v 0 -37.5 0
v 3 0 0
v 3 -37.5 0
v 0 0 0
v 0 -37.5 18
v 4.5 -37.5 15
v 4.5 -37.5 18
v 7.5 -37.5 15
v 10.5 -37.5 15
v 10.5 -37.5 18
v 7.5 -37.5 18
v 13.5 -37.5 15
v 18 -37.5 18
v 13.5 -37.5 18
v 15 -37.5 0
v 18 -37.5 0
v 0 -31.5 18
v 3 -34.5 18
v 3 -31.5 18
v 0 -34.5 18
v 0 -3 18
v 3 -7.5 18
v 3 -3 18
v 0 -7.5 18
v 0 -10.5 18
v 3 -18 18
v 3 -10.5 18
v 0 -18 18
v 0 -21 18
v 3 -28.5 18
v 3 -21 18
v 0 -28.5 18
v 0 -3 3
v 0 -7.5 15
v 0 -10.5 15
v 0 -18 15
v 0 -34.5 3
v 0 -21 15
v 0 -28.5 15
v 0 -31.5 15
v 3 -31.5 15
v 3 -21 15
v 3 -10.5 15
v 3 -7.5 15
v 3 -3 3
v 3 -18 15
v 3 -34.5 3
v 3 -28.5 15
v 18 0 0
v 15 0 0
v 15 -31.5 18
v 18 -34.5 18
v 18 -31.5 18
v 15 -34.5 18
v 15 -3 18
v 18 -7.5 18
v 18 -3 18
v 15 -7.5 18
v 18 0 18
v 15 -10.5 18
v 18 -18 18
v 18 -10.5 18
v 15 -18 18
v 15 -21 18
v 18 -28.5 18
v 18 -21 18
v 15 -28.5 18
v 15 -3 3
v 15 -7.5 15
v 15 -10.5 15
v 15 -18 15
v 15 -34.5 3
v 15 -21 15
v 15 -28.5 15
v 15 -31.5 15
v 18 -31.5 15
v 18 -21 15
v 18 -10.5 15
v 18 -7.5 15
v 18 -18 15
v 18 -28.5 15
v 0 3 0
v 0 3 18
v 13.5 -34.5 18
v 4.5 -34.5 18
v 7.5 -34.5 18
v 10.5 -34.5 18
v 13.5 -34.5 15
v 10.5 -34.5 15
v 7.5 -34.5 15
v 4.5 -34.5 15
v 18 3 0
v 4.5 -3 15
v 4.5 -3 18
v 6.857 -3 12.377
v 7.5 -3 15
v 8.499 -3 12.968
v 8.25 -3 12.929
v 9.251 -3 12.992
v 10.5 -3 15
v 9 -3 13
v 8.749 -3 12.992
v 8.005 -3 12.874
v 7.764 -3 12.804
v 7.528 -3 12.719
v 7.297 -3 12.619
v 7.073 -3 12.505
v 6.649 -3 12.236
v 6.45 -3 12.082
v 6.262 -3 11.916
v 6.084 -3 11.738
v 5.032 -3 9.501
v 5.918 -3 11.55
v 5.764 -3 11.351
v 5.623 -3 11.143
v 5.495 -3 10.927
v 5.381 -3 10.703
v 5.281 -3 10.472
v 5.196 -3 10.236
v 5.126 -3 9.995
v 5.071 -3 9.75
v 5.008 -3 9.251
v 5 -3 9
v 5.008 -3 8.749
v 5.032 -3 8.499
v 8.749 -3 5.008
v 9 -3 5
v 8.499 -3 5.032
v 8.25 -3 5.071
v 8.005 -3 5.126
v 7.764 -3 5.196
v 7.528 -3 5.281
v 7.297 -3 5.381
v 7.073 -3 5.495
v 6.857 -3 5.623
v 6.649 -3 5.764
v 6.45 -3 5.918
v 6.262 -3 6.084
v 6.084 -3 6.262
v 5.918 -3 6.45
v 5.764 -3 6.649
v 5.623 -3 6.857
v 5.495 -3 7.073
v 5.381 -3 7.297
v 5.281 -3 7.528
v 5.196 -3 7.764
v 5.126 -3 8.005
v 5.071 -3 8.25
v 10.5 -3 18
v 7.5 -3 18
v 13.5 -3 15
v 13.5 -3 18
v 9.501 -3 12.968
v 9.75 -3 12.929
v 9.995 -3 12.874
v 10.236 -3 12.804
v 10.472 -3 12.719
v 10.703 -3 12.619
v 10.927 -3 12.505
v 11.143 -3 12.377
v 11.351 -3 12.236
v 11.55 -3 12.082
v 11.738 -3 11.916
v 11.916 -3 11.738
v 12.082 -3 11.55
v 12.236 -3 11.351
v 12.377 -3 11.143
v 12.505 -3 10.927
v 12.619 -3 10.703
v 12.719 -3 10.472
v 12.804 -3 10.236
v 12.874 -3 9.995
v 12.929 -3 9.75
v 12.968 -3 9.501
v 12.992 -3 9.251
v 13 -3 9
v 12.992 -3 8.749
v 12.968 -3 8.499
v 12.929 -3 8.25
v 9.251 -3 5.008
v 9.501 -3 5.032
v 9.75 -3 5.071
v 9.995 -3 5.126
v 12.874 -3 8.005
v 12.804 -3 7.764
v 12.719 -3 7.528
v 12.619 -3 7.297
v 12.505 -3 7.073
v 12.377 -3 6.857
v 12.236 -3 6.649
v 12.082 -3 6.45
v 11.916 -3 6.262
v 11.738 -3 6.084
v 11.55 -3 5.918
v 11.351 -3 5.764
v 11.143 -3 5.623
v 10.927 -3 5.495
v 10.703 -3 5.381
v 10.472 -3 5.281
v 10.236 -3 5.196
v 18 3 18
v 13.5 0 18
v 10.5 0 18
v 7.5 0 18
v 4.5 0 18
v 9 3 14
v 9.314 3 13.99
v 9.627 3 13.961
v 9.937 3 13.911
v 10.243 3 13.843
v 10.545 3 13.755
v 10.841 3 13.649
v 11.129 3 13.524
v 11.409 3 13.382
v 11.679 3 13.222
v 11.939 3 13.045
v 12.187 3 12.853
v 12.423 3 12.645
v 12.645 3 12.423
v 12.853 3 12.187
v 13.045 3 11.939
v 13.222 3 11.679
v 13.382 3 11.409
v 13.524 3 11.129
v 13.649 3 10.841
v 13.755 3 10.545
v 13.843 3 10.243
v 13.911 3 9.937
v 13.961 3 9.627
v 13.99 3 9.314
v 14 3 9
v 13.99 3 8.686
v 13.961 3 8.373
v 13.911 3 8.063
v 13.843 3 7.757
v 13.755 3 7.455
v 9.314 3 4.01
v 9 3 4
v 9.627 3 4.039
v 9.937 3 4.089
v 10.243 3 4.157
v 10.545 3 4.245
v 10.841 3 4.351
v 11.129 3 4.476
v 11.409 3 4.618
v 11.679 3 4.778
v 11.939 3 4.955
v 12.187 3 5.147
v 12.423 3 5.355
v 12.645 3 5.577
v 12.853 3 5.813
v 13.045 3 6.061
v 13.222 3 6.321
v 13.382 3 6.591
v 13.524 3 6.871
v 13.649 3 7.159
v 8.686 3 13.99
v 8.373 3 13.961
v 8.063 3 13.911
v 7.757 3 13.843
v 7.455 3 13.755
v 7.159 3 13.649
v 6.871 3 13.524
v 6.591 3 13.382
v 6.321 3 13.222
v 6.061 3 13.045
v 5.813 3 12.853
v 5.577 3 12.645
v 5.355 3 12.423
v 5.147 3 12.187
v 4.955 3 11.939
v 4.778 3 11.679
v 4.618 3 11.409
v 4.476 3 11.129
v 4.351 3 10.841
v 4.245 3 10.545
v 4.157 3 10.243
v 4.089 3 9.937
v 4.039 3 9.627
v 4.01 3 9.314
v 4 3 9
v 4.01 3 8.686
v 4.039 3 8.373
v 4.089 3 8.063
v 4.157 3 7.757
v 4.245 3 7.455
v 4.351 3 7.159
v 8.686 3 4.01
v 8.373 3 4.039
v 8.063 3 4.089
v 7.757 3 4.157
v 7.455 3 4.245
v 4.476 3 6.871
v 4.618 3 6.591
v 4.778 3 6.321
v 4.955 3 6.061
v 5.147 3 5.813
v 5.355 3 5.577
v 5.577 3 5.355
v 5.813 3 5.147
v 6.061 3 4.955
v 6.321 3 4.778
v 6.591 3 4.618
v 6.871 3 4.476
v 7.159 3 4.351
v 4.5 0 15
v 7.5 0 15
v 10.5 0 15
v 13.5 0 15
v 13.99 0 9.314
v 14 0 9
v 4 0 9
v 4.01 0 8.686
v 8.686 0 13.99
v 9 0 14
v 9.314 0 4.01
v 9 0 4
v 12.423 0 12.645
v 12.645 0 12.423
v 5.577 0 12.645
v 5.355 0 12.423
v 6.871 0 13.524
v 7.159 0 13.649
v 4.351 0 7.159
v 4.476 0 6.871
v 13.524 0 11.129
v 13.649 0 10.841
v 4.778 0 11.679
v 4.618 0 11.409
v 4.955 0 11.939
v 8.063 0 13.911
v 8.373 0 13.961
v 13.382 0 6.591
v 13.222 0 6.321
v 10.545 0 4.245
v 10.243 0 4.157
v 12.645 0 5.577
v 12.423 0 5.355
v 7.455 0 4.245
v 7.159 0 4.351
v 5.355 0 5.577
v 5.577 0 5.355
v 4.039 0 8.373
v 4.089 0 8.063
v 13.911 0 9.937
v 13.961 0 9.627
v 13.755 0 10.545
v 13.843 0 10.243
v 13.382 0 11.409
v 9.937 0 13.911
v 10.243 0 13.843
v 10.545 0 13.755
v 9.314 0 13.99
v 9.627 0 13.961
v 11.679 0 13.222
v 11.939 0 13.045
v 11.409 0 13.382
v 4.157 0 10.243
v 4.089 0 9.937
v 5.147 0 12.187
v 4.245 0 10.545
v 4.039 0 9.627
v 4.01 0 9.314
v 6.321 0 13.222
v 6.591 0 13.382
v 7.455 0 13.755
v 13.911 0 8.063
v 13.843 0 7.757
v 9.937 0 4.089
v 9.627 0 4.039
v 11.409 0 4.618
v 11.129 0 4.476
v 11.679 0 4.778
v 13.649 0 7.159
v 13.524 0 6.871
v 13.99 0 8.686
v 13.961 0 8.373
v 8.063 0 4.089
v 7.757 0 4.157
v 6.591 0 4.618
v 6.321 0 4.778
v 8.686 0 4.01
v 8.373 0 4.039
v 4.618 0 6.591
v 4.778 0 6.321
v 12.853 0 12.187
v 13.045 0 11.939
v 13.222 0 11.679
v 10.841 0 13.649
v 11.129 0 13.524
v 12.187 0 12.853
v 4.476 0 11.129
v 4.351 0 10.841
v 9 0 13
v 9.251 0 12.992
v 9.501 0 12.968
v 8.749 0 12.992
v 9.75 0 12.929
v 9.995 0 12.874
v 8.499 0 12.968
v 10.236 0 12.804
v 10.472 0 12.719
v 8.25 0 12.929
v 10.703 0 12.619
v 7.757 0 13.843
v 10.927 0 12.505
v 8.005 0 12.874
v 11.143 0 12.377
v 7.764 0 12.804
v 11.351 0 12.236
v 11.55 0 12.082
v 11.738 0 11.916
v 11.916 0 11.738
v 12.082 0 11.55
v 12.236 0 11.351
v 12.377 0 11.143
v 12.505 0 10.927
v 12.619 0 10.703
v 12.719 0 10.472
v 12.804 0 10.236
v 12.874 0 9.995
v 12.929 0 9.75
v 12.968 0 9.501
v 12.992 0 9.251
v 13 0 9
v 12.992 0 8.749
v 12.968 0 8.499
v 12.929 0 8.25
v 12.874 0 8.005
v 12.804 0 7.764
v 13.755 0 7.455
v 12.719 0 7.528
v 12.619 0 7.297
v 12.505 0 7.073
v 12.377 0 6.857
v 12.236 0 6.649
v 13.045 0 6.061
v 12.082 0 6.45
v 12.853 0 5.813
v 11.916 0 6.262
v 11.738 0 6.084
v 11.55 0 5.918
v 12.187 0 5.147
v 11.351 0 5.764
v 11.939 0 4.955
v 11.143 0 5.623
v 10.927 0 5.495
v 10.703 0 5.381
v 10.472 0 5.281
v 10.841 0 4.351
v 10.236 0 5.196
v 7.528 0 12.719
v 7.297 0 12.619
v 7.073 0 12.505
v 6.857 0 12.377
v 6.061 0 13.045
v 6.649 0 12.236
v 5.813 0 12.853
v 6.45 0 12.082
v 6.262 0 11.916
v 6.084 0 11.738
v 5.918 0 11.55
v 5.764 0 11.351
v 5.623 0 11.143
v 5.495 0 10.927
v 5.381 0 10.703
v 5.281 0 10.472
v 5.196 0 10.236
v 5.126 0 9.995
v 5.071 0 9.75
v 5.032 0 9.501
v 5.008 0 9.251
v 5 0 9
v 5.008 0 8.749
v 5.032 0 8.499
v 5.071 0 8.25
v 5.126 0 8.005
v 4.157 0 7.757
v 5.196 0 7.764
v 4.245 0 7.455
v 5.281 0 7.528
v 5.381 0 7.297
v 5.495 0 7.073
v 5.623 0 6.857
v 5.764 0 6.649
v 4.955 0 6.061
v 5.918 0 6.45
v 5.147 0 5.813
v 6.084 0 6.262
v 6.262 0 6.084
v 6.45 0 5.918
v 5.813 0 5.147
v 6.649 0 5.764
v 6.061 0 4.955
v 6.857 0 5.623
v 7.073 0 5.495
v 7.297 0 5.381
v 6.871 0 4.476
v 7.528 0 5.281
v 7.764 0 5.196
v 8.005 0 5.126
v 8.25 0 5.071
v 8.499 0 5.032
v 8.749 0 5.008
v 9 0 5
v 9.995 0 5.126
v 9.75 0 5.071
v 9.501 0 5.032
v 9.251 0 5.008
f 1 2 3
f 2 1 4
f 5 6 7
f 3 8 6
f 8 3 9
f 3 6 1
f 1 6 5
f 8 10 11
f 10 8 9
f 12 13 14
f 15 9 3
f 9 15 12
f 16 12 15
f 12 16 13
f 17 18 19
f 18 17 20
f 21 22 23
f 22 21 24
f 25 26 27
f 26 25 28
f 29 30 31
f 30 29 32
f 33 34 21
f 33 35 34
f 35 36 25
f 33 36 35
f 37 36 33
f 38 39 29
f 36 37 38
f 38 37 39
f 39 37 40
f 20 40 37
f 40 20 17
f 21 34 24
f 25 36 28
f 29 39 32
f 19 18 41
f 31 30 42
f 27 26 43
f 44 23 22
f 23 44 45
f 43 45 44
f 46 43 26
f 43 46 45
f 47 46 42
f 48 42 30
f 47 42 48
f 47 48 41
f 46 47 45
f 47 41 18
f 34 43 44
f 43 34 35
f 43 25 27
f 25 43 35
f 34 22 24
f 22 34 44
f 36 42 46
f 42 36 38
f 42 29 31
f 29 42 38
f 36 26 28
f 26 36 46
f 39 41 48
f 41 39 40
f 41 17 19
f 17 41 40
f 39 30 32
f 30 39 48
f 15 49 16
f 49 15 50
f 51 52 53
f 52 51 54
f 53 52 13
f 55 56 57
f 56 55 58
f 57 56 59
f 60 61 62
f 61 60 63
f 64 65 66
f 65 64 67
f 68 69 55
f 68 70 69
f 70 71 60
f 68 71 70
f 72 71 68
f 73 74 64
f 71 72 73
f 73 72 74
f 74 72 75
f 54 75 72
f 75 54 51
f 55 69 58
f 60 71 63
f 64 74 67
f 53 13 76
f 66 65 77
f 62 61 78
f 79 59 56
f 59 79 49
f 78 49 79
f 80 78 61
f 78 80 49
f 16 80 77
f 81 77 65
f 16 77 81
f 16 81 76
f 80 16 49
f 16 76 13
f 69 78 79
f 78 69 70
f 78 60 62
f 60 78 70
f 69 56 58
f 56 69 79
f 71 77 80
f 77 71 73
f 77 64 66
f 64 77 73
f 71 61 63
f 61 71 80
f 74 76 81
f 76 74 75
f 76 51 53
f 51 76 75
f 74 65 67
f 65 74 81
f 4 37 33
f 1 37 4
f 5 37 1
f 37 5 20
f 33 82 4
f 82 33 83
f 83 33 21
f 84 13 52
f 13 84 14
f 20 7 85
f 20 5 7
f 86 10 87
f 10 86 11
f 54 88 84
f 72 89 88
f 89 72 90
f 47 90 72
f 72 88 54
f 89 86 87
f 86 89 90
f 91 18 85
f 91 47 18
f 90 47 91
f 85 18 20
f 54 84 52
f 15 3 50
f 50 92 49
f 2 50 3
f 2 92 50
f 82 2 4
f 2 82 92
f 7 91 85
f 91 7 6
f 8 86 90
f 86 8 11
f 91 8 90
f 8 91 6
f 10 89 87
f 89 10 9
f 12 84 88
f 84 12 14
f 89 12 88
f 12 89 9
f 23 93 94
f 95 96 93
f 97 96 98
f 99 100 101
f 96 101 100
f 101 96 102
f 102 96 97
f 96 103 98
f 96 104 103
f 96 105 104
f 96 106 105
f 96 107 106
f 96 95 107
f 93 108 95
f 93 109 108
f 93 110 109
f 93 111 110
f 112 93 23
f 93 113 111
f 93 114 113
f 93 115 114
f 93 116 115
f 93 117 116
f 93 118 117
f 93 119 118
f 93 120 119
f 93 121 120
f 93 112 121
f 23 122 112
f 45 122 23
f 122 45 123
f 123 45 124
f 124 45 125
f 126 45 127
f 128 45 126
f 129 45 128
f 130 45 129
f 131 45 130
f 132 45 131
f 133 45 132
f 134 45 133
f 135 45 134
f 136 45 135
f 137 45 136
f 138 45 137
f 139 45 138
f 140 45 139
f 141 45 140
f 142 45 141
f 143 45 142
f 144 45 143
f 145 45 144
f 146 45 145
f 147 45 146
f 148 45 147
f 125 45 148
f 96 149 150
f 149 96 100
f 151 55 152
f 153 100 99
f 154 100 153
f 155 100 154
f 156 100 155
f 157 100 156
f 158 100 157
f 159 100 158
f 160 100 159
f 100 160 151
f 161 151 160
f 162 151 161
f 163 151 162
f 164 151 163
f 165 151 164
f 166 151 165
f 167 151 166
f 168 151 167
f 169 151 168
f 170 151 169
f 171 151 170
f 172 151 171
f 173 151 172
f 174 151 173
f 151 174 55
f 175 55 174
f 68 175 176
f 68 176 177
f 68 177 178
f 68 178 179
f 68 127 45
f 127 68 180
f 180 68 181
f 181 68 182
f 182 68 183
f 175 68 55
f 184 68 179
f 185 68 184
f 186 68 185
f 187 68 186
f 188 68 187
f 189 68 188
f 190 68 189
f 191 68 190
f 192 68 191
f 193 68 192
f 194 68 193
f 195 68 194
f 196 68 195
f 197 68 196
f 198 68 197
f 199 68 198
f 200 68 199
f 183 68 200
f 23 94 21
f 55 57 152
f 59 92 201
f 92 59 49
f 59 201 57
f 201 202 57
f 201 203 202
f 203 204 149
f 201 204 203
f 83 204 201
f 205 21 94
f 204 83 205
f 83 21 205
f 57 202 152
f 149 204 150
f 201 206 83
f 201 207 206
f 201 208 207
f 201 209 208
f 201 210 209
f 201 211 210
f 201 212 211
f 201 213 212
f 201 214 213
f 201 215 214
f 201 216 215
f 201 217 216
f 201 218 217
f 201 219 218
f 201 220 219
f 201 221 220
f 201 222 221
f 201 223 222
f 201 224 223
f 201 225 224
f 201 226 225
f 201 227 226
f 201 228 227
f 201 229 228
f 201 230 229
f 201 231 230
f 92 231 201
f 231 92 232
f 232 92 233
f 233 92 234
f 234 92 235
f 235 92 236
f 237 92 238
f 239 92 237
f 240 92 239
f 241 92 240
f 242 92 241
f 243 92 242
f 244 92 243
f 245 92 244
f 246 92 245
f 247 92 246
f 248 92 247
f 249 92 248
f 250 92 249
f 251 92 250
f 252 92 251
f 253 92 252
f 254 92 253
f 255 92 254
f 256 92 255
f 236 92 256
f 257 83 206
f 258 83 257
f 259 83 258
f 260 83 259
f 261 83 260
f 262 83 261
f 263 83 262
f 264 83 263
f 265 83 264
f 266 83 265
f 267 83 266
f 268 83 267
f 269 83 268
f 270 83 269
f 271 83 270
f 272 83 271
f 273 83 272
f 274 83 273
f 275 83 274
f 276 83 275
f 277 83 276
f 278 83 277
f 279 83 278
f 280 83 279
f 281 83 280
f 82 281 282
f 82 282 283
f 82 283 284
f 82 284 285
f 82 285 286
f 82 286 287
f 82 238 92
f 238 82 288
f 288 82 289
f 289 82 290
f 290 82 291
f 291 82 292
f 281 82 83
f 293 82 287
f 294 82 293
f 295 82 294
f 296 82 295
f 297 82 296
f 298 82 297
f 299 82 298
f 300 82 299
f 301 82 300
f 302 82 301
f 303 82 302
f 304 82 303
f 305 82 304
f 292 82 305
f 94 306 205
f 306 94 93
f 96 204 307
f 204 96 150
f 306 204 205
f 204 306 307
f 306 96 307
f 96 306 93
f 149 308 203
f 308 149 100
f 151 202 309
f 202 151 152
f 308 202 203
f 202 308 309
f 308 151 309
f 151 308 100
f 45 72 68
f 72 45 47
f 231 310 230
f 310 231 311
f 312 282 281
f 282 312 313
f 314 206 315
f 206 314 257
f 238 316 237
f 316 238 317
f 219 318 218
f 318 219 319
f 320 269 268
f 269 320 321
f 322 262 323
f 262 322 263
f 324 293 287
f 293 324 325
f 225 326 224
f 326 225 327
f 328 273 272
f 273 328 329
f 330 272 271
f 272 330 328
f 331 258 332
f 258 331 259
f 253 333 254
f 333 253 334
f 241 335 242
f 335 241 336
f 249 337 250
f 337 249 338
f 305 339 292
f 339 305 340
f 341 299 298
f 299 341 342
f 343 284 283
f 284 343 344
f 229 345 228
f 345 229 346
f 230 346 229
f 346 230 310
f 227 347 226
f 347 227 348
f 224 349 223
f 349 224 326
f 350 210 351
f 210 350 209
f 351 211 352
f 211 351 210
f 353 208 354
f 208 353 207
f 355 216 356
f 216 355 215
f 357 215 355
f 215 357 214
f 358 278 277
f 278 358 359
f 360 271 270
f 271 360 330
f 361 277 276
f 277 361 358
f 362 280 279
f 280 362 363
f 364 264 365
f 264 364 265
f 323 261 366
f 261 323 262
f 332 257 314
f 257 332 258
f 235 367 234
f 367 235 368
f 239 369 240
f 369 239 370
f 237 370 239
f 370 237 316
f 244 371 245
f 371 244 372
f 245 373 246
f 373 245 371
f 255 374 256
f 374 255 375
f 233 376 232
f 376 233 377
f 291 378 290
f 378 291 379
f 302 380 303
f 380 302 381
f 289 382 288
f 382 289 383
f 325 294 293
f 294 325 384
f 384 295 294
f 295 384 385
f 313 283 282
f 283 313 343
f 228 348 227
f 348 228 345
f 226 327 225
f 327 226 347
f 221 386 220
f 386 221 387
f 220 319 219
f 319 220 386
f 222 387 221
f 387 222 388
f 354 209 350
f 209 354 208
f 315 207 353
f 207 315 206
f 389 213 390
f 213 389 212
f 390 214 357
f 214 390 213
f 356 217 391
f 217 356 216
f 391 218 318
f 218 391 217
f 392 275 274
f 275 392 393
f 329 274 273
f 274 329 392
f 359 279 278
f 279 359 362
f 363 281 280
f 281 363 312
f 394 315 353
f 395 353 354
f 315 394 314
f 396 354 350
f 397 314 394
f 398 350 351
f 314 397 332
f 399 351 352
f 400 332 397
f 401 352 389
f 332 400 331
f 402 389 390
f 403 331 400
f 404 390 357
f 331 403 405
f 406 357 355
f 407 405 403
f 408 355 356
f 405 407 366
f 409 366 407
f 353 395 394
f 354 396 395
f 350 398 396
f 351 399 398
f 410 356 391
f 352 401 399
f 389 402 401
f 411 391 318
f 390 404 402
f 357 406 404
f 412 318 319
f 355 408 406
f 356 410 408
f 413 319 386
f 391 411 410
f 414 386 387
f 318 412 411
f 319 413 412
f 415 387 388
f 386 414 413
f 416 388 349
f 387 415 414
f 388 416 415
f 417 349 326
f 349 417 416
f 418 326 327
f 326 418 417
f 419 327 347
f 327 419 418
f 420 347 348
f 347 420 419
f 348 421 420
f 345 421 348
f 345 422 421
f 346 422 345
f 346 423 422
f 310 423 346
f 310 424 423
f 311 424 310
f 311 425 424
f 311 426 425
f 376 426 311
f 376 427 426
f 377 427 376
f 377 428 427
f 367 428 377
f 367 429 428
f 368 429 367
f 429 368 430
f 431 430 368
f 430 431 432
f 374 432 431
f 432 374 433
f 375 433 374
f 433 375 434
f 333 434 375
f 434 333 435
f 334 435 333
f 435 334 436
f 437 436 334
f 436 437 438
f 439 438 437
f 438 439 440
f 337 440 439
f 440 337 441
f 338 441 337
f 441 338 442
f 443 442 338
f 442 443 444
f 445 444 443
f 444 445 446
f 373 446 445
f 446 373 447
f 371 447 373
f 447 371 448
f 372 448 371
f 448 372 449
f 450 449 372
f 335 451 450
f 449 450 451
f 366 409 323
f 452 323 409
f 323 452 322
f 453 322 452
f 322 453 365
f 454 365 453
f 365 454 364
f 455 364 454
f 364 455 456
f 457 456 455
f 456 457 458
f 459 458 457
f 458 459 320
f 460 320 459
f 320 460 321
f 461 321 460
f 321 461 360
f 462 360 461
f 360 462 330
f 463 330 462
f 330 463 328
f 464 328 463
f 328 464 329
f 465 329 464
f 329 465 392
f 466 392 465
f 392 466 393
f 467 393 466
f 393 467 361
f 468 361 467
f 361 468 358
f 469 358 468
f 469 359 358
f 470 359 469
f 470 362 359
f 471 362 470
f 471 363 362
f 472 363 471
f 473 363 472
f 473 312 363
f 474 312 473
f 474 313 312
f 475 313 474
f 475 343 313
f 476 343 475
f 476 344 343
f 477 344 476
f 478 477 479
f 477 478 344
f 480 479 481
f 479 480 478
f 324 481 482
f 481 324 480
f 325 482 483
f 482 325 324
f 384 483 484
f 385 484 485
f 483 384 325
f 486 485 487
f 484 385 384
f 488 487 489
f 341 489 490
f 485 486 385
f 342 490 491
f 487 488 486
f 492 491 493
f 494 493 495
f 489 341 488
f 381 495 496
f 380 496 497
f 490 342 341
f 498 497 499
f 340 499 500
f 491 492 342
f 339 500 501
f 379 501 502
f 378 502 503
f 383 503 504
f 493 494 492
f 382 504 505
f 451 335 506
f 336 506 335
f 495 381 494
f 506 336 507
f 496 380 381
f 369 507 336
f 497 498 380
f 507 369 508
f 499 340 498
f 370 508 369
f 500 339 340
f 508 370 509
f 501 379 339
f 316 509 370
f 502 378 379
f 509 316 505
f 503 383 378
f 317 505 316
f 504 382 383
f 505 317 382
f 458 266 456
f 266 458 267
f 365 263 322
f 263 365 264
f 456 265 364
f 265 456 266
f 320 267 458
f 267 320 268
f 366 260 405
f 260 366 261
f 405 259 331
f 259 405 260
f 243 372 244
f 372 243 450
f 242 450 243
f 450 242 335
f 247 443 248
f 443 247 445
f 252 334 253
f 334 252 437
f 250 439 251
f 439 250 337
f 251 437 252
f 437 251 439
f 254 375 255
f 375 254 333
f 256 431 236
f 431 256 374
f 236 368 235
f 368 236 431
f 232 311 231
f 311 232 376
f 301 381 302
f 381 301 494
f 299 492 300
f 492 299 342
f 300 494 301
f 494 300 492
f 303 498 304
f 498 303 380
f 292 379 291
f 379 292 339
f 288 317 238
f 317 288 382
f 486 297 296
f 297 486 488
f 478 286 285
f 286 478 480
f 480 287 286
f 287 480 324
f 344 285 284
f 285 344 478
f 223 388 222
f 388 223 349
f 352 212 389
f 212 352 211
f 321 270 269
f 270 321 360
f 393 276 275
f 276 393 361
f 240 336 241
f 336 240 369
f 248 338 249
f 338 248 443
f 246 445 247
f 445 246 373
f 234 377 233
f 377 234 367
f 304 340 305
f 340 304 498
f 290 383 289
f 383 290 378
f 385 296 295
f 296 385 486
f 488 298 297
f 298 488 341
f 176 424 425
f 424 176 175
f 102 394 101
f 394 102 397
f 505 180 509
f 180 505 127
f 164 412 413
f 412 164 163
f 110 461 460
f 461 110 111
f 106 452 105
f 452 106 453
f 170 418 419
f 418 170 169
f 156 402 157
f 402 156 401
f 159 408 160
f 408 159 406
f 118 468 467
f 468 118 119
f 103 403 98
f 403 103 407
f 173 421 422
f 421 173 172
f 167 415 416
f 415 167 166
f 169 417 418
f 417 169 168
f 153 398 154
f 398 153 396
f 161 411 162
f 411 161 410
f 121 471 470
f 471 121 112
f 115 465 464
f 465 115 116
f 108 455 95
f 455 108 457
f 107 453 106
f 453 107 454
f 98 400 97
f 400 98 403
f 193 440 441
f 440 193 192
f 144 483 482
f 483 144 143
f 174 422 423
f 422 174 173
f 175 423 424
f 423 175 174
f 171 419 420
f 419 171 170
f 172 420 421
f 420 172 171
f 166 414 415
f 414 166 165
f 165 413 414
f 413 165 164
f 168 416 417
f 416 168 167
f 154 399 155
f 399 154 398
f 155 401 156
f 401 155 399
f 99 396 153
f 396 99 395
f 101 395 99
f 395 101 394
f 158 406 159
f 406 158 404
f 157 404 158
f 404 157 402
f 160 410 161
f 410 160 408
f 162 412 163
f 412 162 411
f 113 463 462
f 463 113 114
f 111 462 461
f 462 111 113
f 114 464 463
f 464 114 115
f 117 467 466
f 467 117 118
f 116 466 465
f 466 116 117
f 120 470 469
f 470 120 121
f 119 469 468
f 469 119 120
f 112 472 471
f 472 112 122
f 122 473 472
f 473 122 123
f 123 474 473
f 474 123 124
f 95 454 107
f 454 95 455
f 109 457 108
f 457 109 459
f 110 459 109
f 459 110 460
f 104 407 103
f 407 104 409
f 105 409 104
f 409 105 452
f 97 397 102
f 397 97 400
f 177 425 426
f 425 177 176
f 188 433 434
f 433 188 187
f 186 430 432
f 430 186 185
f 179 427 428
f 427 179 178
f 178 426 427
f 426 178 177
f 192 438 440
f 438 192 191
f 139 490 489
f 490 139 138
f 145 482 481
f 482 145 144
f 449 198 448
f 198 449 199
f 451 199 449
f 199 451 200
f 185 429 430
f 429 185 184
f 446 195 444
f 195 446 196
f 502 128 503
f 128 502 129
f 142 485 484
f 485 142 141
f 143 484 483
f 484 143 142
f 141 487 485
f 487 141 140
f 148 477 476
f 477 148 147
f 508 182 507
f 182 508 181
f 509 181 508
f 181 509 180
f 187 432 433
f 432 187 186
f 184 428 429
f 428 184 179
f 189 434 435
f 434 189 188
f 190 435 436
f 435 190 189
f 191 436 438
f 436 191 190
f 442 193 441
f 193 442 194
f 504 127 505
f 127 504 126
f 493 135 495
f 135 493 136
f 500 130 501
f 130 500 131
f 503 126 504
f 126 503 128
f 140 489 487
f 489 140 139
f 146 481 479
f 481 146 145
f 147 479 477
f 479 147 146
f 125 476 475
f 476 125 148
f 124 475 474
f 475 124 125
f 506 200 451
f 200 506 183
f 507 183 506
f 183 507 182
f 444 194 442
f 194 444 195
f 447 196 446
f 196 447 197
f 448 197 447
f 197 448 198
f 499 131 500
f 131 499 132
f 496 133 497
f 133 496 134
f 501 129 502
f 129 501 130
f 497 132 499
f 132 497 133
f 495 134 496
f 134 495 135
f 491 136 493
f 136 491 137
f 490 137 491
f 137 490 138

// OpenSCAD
//Cabeza semaforo parte de atras
$fn=100;
rotate([90,0,0])
scale([1.5,1.5,1.5])
difference(){
    union(){
        cube(size = [12,2,25]);
        
        rotate([0,0,90])
        translate([0,-2,0])
        difference(){
            cube(size = [12,2,25]);
            translate([10,0,5]) cube(2);
            translate([10,0,12]) cube(2);
            translate([10,0,19]) cube(2);
        }
        
        rotate([0,0,90])
        translate([0,-12,0])
        difference(){
            cube(size = [12,2,25]);
            translate([10,0,5]) cube(2);
            translate([10,0,12]) cube(2);
            translate([10,0,19]) cube(2);
        }
        
        translate([0,0,23])
        difference(){
            cube(size = [12,12,2]);
            translate([3,10,0]) cube(2);
            translate([7,10,0]) cube(2); 
        }
        
        translate([0,0,-2])
        difference(){
            cube(size = [12,12,4]);
            translate([3,10,2]) cube(2);
            translate([7,10,2]) cube(2); 
        }
    }
    
    translate([6,6,-2])
        cylinder(h=2,r=5/1.5);
    
    translate([6,6,-2])
        cylinder(h=4,r=4/1.5);
}
